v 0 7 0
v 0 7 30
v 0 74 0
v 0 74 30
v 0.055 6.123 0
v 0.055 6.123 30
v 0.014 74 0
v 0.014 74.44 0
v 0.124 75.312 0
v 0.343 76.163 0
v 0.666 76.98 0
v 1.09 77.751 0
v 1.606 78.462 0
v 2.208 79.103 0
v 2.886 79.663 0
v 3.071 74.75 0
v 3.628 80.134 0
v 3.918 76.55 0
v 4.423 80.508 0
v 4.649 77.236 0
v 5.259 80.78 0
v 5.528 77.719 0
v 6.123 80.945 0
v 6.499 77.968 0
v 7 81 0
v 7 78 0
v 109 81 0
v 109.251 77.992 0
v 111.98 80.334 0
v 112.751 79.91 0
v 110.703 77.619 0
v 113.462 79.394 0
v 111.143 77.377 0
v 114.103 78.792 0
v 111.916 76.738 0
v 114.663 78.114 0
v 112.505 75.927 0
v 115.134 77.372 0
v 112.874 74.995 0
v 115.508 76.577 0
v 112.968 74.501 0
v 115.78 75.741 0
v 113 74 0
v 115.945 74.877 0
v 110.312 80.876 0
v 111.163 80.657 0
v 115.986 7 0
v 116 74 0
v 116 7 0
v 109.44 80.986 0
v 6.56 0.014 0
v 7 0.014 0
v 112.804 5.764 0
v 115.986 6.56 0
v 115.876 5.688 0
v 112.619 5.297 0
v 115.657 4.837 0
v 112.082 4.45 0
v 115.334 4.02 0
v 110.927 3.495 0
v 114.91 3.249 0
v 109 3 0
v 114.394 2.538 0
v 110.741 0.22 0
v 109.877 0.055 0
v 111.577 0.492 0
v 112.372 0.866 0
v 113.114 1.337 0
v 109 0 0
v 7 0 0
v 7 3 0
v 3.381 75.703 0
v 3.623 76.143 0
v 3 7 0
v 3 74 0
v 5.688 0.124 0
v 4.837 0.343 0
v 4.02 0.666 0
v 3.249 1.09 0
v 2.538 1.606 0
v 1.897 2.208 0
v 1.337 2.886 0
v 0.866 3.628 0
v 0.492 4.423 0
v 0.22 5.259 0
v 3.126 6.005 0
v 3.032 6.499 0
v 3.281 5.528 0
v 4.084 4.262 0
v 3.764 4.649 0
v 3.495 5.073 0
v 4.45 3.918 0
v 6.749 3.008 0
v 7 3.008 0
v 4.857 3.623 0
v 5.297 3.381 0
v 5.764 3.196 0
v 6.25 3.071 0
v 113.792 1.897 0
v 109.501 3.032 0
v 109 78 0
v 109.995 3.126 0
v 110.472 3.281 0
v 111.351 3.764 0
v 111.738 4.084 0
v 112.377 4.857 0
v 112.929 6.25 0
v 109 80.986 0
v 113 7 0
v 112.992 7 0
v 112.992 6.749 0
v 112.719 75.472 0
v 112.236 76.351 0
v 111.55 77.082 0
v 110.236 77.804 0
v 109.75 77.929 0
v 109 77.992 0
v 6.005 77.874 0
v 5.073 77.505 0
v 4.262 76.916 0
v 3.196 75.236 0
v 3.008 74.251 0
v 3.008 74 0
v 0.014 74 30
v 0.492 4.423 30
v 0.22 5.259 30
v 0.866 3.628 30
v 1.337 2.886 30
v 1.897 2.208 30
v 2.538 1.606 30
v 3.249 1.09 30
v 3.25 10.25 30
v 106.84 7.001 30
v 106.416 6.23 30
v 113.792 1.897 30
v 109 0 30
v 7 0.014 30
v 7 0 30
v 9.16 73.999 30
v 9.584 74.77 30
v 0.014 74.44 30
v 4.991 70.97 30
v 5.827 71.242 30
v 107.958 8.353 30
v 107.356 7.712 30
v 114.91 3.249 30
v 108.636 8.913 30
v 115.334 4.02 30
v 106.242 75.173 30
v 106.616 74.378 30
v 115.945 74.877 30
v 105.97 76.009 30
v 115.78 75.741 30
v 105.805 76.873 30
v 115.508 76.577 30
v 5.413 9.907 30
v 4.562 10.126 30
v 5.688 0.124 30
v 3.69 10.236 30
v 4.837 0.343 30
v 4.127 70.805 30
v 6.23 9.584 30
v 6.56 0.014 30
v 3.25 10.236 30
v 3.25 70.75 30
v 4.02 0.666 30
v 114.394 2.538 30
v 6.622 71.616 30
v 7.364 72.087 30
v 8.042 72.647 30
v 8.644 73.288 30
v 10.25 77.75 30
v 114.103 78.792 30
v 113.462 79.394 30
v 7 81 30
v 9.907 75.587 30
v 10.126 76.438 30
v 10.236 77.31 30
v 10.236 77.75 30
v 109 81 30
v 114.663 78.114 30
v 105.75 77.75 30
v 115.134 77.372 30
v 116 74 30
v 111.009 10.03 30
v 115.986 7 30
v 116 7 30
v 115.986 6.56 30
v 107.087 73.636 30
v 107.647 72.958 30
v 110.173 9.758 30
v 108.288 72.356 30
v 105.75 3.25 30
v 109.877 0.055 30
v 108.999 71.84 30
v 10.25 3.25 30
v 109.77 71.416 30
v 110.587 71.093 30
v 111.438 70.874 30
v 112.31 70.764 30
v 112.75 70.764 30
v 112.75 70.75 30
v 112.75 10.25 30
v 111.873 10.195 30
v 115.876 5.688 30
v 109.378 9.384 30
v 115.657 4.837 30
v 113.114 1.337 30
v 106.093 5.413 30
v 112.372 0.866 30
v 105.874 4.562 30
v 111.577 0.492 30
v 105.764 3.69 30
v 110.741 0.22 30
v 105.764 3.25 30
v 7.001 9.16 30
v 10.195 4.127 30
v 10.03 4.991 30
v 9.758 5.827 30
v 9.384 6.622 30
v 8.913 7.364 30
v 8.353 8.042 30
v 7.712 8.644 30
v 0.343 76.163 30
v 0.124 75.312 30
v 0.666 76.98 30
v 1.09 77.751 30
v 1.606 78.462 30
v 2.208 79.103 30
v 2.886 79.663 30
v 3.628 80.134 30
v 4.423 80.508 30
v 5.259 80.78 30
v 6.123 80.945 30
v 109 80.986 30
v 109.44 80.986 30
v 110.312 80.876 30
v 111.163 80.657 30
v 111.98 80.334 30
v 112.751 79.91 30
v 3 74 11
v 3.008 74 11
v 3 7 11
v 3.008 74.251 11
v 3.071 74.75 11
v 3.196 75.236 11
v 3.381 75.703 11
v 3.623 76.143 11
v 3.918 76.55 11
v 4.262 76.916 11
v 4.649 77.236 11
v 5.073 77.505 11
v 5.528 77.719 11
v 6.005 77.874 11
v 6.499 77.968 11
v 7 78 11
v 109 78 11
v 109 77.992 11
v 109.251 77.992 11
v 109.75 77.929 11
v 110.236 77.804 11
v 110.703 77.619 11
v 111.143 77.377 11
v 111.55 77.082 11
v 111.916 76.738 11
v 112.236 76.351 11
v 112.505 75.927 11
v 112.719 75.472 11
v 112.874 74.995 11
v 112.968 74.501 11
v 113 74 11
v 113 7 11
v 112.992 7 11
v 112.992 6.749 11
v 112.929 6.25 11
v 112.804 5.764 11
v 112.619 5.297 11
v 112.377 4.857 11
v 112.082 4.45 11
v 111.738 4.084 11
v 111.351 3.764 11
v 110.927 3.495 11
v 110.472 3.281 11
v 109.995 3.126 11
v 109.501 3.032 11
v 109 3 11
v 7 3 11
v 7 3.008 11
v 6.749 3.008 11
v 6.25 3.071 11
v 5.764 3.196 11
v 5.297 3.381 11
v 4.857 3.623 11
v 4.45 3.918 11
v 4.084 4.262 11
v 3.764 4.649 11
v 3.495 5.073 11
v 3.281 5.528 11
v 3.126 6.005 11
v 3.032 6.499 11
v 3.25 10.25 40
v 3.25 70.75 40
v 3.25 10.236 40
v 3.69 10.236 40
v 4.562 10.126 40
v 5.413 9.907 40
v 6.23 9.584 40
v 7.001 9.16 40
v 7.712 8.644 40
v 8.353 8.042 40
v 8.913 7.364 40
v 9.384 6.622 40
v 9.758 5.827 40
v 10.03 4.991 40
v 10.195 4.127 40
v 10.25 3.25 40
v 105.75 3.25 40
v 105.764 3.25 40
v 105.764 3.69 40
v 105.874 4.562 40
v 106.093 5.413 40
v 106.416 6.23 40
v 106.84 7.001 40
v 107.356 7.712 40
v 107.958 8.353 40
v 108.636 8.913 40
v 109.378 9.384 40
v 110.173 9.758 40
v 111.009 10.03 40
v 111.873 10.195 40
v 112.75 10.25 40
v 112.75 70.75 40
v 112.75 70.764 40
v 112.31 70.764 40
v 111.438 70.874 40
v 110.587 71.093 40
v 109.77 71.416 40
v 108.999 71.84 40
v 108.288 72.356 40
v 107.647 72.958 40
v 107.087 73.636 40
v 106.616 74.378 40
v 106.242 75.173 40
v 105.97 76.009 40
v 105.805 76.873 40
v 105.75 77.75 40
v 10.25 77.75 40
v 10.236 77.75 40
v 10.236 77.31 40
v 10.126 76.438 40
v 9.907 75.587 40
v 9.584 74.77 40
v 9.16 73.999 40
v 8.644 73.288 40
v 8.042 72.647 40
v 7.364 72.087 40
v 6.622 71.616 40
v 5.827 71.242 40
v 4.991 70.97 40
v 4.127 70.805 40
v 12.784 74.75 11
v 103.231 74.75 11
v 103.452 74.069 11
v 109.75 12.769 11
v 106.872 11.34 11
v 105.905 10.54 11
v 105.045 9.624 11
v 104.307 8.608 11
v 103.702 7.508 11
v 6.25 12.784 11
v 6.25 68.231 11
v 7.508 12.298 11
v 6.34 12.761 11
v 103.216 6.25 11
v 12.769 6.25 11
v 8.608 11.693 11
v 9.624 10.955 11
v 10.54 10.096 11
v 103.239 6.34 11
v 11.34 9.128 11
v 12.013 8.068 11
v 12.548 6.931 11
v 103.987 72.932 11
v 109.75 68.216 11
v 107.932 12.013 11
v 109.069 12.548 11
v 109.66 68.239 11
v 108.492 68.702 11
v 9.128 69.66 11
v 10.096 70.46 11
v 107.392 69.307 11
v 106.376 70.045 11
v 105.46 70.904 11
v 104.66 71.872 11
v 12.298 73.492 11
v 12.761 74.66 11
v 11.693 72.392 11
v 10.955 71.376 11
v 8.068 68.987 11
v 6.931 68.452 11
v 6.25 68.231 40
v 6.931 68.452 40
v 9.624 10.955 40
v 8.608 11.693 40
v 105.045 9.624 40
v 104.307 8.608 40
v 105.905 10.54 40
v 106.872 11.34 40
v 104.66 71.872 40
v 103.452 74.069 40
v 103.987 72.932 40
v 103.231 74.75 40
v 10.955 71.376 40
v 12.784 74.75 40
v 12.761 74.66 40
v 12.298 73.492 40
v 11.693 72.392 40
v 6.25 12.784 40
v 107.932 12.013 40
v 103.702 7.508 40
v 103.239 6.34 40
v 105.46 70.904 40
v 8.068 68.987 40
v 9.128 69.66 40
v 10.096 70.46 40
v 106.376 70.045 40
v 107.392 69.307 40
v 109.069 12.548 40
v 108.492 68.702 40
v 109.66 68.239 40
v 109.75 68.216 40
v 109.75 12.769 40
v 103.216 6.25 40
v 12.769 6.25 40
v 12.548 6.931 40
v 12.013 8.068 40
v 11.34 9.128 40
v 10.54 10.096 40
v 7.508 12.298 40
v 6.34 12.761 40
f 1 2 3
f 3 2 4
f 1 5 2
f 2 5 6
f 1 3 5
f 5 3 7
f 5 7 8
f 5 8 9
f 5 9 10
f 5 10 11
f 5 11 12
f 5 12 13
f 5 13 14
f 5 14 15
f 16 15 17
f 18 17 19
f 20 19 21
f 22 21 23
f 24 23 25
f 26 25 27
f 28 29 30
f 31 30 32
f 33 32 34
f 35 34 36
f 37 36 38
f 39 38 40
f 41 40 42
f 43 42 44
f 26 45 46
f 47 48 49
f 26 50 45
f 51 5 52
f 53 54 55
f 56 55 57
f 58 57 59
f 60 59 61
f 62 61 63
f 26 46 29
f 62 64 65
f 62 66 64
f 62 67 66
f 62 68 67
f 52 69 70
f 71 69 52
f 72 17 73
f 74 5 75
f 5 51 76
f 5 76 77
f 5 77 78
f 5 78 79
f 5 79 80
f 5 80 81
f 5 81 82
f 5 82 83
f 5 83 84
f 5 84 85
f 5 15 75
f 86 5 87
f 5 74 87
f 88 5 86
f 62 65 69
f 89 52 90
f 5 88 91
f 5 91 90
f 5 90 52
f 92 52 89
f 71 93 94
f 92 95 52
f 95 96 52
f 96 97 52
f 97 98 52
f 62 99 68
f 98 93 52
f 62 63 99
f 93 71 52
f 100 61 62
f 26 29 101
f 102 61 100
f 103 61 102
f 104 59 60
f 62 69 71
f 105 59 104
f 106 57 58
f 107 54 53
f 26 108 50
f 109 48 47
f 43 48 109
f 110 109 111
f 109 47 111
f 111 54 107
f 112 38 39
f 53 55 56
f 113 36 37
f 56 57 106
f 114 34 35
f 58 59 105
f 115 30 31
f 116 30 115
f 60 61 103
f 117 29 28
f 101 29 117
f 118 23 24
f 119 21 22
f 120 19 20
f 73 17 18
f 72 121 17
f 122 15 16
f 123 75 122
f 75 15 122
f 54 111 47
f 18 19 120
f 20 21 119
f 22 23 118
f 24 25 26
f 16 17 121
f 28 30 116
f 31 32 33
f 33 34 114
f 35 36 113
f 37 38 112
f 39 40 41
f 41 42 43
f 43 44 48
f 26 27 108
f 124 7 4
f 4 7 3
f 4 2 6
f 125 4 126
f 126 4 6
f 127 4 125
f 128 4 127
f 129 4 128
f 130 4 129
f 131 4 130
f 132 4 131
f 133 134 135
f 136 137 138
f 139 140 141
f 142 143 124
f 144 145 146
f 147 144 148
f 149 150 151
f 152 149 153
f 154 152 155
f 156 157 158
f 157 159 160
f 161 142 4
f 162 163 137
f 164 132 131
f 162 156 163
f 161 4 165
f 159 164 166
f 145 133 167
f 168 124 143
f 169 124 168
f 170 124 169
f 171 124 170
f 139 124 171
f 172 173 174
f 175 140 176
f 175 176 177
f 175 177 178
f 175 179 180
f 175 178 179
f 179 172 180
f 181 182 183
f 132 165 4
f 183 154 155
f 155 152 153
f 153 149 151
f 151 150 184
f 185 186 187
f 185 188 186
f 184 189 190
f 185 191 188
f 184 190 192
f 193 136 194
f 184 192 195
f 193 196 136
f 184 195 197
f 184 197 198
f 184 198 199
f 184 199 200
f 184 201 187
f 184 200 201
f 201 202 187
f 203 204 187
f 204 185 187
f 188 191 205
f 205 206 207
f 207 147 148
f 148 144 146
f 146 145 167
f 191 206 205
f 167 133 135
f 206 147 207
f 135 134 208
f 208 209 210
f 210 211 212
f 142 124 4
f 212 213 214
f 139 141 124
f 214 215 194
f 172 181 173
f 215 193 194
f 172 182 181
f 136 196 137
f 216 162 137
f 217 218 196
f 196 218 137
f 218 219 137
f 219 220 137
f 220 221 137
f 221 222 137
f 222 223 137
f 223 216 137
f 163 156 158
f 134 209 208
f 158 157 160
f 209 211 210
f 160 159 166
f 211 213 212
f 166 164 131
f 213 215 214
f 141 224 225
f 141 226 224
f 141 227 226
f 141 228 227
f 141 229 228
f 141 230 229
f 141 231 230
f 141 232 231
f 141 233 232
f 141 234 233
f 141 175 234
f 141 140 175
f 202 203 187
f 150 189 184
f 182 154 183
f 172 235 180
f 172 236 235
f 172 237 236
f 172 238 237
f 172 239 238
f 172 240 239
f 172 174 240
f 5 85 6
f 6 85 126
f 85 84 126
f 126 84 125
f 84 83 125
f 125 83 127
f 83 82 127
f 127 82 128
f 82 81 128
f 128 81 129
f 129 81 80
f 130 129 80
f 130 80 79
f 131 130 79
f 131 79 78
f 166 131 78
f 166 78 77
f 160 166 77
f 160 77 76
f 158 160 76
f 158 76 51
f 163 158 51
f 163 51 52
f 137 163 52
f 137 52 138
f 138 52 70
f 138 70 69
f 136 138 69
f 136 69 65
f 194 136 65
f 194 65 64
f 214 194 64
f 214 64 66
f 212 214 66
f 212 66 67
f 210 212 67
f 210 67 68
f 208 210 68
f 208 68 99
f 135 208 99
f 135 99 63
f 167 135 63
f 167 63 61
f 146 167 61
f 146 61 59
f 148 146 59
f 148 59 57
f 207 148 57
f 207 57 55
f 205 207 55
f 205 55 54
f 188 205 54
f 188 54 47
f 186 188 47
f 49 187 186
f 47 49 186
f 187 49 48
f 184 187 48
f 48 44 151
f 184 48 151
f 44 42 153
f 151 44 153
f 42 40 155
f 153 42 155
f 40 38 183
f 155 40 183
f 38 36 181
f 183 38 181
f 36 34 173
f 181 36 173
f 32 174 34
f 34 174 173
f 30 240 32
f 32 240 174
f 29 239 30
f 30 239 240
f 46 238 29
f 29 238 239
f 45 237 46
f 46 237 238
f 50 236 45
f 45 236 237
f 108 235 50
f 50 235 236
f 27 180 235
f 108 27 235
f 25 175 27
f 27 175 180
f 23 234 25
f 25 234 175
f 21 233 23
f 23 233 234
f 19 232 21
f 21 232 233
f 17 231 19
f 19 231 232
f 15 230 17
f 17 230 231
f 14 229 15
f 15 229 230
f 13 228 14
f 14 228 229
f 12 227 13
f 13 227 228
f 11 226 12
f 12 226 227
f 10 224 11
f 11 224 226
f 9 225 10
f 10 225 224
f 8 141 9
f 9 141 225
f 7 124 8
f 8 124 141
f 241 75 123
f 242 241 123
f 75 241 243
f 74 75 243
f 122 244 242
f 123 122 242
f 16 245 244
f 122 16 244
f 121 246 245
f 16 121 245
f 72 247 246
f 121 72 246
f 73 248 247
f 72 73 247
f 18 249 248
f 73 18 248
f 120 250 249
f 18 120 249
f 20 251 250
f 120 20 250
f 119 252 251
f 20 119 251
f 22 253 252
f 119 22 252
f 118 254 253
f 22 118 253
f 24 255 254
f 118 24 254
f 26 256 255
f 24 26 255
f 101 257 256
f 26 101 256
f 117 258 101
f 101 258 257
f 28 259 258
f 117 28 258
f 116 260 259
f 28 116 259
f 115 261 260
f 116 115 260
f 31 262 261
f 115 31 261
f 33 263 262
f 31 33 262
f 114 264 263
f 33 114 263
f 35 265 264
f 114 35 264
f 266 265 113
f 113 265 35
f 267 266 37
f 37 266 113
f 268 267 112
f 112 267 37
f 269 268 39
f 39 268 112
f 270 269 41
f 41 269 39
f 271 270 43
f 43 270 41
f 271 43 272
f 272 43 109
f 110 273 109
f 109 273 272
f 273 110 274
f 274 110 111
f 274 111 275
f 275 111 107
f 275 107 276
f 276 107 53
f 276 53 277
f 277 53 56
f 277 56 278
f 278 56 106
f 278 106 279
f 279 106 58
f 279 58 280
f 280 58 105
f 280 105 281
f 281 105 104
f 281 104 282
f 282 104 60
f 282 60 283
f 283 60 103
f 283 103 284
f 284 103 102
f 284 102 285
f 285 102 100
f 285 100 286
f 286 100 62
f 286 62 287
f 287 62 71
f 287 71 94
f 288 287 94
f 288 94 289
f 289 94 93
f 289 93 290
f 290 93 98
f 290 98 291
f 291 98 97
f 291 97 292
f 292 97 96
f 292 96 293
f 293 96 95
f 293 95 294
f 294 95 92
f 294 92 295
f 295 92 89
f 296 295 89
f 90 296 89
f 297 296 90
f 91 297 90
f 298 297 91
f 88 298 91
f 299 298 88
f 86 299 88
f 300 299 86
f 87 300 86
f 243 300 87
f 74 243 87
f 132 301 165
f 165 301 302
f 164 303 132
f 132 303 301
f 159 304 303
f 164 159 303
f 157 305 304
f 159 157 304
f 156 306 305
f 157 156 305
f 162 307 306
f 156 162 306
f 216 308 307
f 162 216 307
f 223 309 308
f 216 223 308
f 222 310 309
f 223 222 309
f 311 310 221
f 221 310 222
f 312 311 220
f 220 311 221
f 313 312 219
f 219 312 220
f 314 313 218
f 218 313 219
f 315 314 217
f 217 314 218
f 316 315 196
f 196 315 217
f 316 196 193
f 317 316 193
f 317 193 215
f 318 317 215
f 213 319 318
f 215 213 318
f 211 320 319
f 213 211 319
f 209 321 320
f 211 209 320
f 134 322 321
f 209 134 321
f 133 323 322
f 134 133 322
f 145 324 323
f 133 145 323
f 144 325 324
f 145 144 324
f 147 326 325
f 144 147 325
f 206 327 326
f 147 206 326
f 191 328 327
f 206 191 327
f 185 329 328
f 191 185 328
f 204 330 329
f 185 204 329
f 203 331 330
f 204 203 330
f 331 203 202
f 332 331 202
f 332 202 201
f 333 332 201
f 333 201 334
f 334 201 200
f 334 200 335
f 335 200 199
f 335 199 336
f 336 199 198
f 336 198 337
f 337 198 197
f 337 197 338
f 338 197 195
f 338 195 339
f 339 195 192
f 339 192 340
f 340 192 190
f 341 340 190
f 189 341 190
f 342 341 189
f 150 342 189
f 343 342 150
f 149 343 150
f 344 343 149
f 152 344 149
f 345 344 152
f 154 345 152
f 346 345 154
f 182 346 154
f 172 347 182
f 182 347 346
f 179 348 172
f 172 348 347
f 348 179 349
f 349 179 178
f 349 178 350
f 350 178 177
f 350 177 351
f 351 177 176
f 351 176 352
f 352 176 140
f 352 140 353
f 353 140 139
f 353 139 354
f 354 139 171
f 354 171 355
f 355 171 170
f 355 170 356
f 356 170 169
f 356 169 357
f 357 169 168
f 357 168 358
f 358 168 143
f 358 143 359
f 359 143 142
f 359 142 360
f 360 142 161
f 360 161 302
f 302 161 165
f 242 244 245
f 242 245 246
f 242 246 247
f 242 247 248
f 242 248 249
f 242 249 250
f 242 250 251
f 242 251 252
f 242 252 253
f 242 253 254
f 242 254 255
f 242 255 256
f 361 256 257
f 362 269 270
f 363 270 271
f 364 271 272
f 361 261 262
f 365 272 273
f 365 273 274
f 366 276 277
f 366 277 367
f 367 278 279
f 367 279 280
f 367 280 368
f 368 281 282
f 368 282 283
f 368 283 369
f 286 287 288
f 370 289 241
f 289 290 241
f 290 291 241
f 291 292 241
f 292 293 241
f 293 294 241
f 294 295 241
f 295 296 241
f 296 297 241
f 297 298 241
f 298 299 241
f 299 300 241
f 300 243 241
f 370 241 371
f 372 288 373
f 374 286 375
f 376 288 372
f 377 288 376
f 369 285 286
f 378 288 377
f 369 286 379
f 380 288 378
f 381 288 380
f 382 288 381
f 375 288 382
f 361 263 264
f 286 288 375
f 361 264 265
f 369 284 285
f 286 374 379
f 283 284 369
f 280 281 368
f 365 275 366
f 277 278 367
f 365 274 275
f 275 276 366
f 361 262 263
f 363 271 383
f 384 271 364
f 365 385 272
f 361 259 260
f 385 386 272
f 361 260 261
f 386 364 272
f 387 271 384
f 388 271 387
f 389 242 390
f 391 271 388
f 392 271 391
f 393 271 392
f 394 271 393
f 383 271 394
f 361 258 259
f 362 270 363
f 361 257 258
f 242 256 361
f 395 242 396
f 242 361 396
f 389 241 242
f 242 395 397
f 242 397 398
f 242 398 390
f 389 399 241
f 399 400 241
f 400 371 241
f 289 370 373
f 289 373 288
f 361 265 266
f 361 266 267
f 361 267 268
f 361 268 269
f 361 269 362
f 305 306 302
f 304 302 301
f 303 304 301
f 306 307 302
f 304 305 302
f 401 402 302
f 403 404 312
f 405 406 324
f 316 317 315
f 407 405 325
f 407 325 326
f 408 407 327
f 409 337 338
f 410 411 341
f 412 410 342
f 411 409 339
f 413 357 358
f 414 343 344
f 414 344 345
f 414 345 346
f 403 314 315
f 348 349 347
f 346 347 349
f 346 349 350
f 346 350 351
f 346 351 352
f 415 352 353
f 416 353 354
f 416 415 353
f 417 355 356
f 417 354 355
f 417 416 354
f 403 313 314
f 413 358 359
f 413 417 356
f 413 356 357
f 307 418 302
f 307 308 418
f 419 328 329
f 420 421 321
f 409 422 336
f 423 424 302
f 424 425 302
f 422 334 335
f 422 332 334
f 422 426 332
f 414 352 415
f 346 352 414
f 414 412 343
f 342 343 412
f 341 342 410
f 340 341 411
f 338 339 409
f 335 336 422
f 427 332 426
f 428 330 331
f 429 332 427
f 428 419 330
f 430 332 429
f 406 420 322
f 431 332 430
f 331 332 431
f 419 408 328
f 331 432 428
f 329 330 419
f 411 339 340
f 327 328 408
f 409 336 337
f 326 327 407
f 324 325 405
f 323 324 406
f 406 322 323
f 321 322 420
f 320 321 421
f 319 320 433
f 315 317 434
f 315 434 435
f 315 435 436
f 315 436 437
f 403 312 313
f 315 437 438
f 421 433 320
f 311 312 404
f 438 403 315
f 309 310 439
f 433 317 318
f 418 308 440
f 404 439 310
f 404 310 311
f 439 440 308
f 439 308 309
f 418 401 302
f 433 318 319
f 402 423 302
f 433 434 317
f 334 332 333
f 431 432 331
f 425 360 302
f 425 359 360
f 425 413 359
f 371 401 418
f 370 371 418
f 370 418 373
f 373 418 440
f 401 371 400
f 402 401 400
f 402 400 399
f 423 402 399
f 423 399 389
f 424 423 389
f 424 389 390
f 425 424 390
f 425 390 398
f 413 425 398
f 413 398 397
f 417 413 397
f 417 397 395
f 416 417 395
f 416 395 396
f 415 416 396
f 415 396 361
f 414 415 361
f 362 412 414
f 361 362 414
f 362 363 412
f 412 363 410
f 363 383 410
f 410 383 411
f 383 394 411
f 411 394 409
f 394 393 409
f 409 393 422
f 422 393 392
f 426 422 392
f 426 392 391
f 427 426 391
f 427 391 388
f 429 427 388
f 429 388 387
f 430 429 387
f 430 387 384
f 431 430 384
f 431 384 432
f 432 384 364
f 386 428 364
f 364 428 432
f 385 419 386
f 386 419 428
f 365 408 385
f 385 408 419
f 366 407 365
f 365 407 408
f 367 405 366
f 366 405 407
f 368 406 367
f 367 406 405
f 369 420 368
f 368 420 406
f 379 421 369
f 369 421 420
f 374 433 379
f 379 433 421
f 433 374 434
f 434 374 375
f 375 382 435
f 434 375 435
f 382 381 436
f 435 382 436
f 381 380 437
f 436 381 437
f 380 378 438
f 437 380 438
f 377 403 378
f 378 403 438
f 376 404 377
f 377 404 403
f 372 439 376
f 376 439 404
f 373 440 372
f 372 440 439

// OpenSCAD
/*
	name: 		bumper-box-extension.scad
	author:		Aymeric B.
	date:		02.07.2014
*/


/****** PARAMETERS ****/
$fn = 50;
thickness = 3;
clearance = 0.1;

inner_width = 109.5;
inner_height = 74.5;
inner_depth = 10;
inner_corner_radius = 7;
inner_corner_offset = 10;
outer_width = 110;
outer_height = 75;
outer_depth = 11;
outer_corner_radius = 7;
elevation = 40;


/****** MODULES ****/
module RoundingEdge(radius, length) {	
	difference() {
		translate([0, 0, -clearance]) {
			cube([2*radius+clearance, 2*radius+clearance, length+2*clearance]);
		}
		translate([0, 0, -2*clearance]) {
			cylinder(r=radius,h=length+4*clearance);
		}
	}
}

module RoundingInnerEdge(radius, length) {	
	difference() {
		translate([0, 0, -clearance]) {
			cube([2*radius, 2*radius, length]);
		}
		translate([radius, radius, -clearance]) {
			rotate([0, 0, 180]) RoundingEdge(radius, length);
		}
	}
}

module RoundedOuterCube(width, height, depth, radius) {
	difference() {
		cube([width, height, depth]);
		translate([width-radius, height-radius, 0]) {
			RoundingEdge(radius, depth);
		}
		translate([radius, height-radius, 0]) {
			rotate([0, 0, 90]) RoundingEdge(radius, depth);
		}
		translate([radius, radius, 0]) {
			rotate([0, 0, 180]) RoundingEdge(radius, depth);
		}
		translate([width-radius, radius, 0]) {
			rotate([0, 0, 270]) RoundingEdge(radius, depth);
		}
	}
}

module RoundedInnerCube(width, height, depth, radius, offset) {
	difference() {
		cube([width, height, depth]);
		translate([width-offset, height-offset, 0]) {
			RoundingInnerEdge(radius, depth+2*clearance);
		}
		translate([offset, height-offset, 0]) {
			rotate([0, 0, 90]) RoundingInnerEdge(radius, depth+2*clearance);
		}
		translate([offset, offset, 0]) {
			rotate([0, 0, 180]) RoundingInnerEdge(radius, depth+2*clearance);
		}
		translate([width-offset, offset, 0]) {
			rotate([0, 0, 270]) RoundingInnerEdge(radius, depth+2*clearance);
		}
	}
}

module Draw() {
	difference() {
		union() {
			color("green") {
				RoundedOuterCube(outer_width+2*thickness, outer_height+2*thickness, elevation-inner_depth, outer_corner_radius);
				translate([(outer_width-inner_width+2*thickness)/2, (outer_height-inner_height+2*thickness)/2, elevation-inner_depth]) {
					RoundedInnerCube(inner_width, inner_height, inner_depth, inner_corner_radius, inner_corner_radius, inner_corner_offset);
				}
			}
		}
		union() {
			color("red") {
				translate([thickness, thickness, -clearance]) {
					RoundedOuterCube(outer_width, outer_height, outer_depth+clearance, outer_corner_radius-thickness);
				}
				translate([(outer_width-inner_width+4*thickness)/2, (outer_height-inner_height+4*thickness)/2, outer_depth-clearance]) {
					RoundedInnerCube(inner_width-2*thickness, inner_height-2*thickness, elevation-outer_depth+2*clearance, inner_corner_radius+thickness, inner_corner_radius);
				}
			}
		}
	}
}

/****** RENDERS ****/
Draw();
//difference() {
//	RoundedInnerCube(inner_width, inner_height, inner_depth, inner_corner_radius, 10);
//	translate([thickness, thickness, -clearance ]){
//		RoundedInnerCube(inner_width-2*thickness, inner_height-2*thickness, inner_depth+2*clearance, inner_corner_radius+thickness, 10);
//	}
//}
